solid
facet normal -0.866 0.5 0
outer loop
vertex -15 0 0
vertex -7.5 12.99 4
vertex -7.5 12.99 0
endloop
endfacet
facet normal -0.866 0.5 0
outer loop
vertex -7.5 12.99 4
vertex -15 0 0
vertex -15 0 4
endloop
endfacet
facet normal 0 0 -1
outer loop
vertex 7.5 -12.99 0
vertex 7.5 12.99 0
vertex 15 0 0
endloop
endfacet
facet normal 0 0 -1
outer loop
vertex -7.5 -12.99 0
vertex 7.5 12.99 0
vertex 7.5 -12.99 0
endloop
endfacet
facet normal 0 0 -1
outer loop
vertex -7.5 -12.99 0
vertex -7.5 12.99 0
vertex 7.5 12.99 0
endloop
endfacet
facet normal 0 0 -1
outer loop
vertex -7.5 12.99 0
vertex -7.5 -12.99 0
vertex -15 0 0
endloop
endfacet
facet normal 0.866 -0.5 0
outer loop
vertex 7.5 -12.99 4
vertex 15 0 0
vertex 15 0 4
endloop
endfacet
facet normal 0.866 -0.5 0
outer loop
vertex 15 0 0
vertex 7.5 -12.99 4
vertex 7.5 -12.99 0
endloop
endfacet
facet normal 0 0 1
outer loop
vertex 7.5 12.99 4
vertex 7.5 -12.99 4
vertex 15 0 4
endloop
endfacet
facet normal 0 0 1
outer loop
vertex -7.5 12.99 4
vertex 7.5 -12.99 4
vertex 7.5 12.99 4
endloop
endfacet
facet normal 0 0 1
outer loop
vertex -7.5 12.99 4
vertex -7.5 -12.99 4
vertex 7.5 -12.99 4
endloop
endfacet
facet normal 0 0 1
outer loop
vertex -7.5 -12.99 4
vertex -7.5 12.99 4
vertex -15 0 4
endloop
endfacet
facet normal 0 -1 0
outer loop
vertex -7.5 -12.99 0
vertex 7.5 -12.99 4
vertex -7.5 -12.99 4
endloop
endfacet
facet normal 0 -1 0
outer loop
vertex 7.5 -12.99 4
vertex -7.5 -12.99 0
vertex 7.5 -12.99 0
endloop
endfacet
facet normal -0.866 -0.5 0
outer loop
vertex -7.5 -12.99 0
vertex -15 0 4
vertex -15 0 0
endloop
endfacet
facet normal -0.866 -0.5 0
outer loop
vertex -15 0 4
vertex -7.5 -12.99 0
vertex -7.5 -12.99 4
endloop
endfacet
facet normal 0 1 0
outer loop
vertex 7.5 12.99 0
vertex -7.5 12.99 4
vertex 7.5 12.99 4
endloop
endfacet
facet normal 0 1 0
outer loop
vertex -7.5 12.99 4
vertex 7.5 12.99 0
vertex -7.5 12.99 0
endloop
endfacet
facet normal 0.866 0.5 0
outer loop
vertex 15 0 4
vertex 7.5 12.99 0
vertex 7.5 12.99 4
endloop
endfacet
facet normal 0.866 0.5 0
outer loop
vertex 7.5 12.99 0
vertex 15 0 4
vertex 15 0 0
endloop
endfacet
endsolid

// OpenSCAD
// resolution bezier curve
deltat = 0.06;

// cubic bexier curve function
function cubic_bezier(p0,p1,p2,p3) = [for (t=[0:deltat:1+deltat]) pow(1-t,3)*p0+3*pow((1-t),2)*t*p1+3*(1-t)*pow(t,2)*p2+pow(t,3)*p3];
    
function reverse(v) = [for (i=[len(v)-1:-1:0]) v[i]];
function delete_first(v) = [for (i=[1:len(v)-1]) v[i]]; 


p10 = [-4.75,4.001];
p11 = [-2.75,4.0];
p12 = [-4.8,2.2];
p13 = [0.0,2.0];

p20 = [4.75,4.001];
p21 = [2.75,4.0];
p22 = [4.8,2.2];
p23 = [0.0,2.0];



// bezier curve for cx
points_left = cubic_bezier(p10, p11, p12, p13);
points_right = reverse(cubic_bezier(p20, p21, p22, p23));
points = concat(points_left, points_right);


difference()
{
    color("Peru", 1.0)
    {
        // hexagon base
        linear_extrude(height = 4, center = false, convexity = 10, twist = 0)
        circle(r=15, $fn=6);
    }
    
    color("DogerBlue", 1.0)
    {
        // canal shape
        translate([22.5,-12.99,0])
        rotate_extrude(angle=360, convexity=10, $fn=90)
        translate([-22.5,0,0])
        polygon(points);
    }
    
    color("DogerBlue", 1.0)
    {
        // canal shape
        translate([-22.5,-12.99,0])
        rotate_extrude(angle=360, convexity=10, $fn=90)
        translate([22.5,0,0])
        polygon(points);
    }
    
}
